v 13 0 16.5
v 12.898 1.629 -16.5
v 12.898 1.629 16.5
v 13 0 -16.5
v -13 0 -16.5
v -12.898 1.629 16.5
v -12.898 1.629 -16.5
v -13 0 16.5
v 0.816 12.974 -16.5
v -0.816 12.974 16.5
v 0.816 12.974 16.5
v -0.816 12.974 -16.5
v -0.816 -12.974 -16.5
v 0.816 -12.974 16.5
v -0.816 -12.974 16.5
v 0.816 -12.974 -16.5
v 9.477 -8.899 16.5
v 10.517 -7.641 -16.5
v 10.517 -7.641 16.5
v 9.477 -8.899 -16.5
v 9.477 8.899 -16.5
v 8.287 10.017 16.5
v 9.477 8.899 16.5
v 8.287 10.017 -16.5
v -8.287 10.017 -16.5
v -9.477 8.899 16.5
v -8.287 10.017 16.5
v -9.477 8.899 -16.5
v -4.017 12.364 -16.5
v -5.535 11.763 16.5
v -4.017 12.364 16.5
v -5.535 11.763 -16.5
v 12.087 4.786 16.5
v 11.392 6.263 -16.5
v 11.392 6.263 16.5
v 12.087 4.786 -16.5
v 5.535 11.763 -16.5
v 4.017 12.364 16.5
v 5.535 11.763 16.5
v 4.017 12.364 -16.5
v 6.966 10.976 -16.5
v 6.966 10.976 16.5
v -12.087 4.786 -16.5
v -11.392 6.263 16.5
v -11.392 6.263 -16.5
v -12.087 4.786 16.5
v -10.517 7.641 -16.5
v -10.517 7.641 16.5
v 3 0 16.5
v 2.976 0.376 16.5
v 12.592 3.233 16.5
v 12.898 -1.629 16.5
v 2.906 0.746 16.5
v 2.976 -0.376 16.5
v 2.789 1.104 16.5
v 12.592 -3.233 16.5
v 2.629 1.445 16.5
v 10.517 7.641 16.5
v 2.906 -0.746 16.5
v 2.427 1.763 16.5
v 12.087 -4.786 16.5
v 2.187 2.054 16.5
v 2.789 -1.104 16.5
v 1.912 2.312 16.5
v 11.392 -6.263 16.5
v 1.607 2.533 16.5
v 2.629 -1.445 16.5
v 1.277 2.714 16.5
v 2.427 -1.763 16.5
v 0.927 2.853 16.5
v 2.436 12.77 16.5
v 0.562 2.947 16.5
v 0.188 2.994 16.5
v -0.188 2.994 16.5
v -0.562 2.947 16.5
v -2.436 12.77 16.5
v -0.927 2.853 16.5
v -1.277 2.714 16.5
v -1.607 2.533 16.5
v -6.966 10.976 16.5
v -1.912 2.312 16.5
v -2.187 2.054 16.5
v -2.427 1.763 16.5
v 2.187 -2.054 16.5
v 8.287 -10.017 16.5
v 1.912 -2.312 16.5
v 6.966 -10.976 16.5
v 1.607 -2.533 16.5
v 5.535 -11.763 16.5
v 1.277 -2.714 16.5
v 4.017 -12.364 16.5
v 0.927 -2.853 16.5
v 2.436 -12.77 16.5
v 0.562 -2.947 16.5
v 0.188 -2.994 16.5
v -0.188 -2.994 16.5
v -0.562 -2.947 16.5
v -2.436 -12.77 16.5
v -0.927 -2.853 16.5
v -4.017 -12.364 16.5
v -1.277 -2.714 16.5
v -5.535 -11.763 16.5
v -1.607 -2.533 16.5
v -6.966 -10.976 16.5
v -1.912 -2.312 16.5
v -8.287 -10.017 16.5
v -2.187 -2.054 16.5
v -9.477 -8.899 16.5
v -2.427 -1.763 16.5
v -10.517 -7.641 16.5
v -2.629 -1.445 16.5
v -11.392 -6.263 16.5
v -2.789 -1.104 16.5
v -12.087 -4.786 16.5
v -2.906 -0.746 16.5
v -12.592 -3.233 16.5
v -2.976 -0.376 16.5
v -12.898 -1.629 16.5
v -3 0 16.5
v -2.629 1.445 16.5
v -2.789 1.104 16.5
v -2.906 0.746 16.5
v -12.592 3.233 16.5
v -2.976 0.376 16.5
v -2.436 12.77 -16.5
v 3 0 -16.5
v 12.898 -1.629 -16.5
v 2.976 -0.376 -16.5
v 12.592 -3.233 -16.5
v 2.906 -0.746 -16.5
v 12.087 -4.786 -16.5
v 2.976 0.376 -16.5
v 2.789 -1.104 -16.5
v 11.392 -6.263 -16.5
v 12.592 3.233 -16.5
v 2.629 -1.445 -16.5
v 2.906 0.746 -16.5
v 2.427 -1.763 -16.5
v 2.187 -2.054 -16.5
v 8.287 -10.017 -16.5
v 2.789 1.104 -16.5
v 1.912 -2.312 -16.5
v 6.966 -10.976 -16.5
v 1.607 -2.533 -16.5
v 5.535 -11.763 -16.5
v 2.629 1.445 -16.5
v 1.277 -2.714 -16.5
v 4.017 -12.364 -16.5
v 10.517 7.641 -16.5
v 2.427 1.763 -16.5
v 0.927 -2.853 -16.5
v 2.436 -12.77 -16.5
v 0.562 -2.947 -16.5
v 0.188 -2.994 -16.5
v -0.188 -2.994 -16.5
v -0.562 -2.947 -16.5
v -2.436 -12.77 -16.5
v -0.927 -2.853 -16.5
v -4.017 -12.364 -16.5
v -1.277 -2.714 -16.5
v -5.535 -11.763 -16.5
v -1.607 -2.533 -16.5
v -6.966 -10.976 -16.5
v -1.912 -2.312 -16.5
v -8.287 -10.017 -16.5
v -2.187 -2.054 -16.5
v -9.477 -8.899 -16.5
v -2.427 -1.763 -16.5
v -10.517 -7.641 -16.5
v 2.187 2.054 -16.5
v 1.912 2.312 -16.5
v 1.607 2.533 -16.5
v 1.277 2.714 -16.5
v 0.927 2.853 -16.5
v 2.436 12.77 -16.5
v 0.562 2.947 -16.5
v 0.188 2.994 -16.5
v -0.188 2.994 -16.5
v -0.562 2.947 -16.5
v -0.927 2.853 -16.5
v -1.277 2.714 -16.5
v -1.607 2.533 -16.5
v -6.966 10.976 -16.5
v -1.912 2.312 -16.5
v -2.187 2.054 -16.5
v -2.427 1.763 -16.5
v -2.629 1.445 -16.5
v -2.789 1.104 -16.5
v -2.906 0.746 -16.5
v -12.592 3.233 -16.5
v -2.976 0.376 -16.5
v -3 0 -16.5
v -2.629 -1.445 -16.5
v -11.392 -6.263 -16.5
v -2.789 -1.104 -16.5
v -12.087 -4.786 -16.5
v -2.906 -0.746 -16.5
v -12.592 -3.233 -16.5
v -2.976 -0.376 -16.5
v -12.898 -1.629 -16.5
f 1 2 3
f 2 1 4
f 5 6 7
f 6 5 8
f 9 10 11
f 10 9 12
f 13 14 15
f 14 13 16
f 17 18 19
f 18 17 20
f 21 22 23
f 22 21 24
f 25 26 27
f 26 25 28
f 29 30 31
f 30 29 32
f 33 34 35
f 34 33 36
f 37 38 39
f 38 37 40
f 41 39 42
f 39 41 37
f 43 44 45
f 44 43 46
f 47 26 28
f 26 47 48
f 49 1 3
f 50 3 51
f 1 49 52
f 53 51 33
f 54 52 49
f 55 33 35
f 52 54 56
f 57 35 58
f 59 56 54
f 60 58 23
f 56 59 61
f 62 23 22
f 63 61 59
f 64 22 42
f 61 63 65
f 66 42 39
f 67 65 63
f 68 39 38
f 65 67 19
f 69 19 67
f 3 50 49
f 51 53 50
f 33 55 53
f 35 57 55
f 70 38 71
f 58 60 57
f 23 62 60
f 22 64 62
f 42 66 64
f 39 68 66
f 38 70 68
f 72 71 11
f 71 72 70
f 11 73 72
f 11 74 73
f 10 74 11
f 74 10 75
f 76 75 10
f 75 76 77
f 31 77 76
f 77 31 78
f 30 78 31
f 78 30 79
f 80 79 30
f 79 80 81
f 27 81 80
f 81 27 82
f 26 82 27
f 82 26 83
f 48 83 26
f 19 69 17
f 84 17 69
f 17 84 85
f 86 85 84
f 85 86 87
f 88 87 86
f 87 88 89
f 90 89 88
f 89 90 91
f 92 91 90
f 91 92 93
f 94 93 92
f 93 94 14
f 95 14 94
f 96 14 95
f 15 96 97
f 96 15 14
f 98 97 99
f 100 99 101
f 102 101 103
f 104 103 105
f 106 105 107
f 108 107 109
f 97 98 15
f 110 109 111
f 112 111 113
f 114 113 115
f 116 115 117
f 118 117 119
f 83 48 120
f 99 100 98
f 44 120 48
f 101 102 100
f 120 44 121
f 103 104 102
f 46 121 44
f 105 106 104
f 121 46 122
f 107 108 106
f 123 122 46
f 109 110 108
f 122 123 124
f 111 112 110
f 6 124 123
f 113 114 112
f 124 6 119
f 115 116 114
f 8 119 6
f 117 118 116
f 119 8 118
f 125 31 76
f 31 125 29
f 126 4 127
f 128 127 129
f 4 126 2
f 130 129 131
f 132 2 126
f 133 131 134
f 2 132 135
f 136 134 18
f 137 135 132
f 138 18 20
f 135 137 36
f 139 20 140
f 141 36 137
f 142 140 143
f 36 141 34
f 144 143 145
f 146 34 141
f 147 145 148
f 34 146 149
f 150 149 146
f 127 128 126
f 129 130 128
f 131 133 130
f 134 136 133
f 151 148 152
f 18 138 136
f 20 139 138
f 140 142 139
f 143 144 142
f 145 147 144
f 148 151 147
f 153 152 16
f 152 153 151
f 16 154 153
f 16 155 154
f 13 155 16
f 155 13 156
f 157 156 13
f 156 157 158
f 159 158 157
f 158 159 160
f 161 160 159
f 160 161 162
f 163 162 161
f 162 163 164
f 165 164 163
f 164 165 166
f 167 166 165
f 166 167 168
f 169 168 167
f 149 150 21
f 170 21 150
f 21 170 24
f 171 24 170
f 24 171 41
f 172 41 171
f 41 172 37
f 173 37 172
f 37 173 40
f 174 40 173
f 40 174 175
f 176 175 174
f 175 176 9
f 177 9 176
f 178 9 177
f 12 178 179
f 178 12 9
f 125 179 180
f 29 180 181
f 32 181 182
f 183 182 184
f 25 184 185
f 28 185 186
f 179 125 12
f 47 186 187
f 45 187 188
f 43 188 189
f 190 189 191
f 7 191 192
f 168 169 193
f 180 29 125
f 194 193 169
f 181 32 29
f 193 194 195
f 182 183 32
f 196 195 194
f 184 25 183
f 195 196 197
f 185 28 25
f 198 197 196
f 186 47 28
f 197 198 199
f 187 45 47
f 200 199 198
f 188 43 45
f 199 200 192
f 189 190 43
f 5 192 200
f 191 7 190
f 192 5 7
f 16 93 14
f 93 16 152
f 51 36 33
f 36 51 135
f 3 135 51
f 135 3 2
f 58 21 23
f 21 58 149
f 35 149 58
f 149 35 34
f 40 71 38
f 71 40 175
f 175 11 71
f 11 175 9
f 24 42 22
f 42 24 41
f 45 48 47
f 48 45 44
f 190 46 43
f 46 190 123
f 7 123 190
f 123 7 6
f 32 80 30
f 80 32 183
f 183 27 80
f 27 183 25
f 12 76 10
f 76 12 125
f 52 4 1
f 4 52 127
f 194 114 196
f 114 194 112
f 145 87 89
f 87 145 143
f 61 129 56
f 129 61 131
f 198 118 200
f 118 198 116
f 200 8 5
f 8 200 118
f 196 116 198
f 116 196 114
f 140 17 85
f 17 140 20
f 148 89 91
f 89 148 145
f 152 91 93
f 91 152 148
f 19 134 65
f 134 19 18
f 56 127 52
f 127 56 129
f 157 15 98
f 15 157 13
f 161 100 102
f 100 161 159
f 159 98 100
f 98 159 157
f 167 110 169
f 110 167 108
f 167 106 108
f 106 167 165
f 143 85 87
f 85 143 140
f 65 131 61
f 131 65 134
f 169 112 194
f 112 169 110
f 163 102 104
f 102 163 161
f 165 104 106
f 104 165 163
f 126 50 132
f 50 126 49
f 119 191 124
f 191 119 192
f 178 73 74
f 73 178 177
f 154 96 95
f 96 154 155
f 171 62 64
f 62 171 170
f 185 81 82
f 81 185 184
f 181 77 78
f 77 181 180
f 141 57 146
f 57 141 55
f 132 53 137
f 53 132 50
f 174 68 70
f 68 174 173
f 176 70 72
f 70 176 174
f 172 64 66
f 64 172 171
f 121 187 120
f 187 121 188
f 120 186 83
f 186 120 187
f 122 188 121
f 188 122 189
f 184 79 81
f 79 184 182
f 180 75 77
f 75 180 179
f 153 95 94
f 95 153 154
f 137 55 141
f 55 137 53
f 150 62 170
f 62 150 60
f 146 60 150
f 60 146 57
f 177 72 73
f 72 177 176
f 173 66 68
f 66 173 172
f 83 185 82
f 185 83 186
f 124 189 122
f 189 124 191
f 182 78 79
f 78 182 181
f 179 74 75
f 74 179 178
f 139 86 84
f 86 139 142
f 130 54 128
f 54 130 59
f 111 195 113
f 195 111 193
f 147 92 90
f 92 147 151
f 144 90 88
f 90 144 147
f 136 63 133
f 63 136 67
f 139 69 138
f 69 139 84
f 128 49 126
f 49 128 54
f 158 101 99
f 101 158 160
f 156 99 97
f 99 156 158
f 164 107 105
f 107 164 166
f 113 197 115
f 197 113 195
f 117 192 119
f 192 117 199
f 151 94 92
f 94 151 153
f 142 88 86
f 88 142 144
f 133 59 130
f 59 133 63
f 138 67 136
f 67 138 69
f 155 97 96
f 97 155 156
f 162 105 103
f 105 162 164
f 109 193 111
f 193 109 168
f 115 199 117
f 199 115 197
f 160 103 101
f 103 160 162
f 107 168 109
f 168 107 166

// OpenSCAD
$fn = 50;


difference() {
	union() {
		translate(v = [0, 0, -16.5000000000]) {
			cylinder(h = 33, r = 13.0000000000);
		}
	}
	union() {
		translate(v = [0, 0, -100.0000000000]) {
			cylinder(h = 200, r = 3.0000000000);
		}
	}
}
